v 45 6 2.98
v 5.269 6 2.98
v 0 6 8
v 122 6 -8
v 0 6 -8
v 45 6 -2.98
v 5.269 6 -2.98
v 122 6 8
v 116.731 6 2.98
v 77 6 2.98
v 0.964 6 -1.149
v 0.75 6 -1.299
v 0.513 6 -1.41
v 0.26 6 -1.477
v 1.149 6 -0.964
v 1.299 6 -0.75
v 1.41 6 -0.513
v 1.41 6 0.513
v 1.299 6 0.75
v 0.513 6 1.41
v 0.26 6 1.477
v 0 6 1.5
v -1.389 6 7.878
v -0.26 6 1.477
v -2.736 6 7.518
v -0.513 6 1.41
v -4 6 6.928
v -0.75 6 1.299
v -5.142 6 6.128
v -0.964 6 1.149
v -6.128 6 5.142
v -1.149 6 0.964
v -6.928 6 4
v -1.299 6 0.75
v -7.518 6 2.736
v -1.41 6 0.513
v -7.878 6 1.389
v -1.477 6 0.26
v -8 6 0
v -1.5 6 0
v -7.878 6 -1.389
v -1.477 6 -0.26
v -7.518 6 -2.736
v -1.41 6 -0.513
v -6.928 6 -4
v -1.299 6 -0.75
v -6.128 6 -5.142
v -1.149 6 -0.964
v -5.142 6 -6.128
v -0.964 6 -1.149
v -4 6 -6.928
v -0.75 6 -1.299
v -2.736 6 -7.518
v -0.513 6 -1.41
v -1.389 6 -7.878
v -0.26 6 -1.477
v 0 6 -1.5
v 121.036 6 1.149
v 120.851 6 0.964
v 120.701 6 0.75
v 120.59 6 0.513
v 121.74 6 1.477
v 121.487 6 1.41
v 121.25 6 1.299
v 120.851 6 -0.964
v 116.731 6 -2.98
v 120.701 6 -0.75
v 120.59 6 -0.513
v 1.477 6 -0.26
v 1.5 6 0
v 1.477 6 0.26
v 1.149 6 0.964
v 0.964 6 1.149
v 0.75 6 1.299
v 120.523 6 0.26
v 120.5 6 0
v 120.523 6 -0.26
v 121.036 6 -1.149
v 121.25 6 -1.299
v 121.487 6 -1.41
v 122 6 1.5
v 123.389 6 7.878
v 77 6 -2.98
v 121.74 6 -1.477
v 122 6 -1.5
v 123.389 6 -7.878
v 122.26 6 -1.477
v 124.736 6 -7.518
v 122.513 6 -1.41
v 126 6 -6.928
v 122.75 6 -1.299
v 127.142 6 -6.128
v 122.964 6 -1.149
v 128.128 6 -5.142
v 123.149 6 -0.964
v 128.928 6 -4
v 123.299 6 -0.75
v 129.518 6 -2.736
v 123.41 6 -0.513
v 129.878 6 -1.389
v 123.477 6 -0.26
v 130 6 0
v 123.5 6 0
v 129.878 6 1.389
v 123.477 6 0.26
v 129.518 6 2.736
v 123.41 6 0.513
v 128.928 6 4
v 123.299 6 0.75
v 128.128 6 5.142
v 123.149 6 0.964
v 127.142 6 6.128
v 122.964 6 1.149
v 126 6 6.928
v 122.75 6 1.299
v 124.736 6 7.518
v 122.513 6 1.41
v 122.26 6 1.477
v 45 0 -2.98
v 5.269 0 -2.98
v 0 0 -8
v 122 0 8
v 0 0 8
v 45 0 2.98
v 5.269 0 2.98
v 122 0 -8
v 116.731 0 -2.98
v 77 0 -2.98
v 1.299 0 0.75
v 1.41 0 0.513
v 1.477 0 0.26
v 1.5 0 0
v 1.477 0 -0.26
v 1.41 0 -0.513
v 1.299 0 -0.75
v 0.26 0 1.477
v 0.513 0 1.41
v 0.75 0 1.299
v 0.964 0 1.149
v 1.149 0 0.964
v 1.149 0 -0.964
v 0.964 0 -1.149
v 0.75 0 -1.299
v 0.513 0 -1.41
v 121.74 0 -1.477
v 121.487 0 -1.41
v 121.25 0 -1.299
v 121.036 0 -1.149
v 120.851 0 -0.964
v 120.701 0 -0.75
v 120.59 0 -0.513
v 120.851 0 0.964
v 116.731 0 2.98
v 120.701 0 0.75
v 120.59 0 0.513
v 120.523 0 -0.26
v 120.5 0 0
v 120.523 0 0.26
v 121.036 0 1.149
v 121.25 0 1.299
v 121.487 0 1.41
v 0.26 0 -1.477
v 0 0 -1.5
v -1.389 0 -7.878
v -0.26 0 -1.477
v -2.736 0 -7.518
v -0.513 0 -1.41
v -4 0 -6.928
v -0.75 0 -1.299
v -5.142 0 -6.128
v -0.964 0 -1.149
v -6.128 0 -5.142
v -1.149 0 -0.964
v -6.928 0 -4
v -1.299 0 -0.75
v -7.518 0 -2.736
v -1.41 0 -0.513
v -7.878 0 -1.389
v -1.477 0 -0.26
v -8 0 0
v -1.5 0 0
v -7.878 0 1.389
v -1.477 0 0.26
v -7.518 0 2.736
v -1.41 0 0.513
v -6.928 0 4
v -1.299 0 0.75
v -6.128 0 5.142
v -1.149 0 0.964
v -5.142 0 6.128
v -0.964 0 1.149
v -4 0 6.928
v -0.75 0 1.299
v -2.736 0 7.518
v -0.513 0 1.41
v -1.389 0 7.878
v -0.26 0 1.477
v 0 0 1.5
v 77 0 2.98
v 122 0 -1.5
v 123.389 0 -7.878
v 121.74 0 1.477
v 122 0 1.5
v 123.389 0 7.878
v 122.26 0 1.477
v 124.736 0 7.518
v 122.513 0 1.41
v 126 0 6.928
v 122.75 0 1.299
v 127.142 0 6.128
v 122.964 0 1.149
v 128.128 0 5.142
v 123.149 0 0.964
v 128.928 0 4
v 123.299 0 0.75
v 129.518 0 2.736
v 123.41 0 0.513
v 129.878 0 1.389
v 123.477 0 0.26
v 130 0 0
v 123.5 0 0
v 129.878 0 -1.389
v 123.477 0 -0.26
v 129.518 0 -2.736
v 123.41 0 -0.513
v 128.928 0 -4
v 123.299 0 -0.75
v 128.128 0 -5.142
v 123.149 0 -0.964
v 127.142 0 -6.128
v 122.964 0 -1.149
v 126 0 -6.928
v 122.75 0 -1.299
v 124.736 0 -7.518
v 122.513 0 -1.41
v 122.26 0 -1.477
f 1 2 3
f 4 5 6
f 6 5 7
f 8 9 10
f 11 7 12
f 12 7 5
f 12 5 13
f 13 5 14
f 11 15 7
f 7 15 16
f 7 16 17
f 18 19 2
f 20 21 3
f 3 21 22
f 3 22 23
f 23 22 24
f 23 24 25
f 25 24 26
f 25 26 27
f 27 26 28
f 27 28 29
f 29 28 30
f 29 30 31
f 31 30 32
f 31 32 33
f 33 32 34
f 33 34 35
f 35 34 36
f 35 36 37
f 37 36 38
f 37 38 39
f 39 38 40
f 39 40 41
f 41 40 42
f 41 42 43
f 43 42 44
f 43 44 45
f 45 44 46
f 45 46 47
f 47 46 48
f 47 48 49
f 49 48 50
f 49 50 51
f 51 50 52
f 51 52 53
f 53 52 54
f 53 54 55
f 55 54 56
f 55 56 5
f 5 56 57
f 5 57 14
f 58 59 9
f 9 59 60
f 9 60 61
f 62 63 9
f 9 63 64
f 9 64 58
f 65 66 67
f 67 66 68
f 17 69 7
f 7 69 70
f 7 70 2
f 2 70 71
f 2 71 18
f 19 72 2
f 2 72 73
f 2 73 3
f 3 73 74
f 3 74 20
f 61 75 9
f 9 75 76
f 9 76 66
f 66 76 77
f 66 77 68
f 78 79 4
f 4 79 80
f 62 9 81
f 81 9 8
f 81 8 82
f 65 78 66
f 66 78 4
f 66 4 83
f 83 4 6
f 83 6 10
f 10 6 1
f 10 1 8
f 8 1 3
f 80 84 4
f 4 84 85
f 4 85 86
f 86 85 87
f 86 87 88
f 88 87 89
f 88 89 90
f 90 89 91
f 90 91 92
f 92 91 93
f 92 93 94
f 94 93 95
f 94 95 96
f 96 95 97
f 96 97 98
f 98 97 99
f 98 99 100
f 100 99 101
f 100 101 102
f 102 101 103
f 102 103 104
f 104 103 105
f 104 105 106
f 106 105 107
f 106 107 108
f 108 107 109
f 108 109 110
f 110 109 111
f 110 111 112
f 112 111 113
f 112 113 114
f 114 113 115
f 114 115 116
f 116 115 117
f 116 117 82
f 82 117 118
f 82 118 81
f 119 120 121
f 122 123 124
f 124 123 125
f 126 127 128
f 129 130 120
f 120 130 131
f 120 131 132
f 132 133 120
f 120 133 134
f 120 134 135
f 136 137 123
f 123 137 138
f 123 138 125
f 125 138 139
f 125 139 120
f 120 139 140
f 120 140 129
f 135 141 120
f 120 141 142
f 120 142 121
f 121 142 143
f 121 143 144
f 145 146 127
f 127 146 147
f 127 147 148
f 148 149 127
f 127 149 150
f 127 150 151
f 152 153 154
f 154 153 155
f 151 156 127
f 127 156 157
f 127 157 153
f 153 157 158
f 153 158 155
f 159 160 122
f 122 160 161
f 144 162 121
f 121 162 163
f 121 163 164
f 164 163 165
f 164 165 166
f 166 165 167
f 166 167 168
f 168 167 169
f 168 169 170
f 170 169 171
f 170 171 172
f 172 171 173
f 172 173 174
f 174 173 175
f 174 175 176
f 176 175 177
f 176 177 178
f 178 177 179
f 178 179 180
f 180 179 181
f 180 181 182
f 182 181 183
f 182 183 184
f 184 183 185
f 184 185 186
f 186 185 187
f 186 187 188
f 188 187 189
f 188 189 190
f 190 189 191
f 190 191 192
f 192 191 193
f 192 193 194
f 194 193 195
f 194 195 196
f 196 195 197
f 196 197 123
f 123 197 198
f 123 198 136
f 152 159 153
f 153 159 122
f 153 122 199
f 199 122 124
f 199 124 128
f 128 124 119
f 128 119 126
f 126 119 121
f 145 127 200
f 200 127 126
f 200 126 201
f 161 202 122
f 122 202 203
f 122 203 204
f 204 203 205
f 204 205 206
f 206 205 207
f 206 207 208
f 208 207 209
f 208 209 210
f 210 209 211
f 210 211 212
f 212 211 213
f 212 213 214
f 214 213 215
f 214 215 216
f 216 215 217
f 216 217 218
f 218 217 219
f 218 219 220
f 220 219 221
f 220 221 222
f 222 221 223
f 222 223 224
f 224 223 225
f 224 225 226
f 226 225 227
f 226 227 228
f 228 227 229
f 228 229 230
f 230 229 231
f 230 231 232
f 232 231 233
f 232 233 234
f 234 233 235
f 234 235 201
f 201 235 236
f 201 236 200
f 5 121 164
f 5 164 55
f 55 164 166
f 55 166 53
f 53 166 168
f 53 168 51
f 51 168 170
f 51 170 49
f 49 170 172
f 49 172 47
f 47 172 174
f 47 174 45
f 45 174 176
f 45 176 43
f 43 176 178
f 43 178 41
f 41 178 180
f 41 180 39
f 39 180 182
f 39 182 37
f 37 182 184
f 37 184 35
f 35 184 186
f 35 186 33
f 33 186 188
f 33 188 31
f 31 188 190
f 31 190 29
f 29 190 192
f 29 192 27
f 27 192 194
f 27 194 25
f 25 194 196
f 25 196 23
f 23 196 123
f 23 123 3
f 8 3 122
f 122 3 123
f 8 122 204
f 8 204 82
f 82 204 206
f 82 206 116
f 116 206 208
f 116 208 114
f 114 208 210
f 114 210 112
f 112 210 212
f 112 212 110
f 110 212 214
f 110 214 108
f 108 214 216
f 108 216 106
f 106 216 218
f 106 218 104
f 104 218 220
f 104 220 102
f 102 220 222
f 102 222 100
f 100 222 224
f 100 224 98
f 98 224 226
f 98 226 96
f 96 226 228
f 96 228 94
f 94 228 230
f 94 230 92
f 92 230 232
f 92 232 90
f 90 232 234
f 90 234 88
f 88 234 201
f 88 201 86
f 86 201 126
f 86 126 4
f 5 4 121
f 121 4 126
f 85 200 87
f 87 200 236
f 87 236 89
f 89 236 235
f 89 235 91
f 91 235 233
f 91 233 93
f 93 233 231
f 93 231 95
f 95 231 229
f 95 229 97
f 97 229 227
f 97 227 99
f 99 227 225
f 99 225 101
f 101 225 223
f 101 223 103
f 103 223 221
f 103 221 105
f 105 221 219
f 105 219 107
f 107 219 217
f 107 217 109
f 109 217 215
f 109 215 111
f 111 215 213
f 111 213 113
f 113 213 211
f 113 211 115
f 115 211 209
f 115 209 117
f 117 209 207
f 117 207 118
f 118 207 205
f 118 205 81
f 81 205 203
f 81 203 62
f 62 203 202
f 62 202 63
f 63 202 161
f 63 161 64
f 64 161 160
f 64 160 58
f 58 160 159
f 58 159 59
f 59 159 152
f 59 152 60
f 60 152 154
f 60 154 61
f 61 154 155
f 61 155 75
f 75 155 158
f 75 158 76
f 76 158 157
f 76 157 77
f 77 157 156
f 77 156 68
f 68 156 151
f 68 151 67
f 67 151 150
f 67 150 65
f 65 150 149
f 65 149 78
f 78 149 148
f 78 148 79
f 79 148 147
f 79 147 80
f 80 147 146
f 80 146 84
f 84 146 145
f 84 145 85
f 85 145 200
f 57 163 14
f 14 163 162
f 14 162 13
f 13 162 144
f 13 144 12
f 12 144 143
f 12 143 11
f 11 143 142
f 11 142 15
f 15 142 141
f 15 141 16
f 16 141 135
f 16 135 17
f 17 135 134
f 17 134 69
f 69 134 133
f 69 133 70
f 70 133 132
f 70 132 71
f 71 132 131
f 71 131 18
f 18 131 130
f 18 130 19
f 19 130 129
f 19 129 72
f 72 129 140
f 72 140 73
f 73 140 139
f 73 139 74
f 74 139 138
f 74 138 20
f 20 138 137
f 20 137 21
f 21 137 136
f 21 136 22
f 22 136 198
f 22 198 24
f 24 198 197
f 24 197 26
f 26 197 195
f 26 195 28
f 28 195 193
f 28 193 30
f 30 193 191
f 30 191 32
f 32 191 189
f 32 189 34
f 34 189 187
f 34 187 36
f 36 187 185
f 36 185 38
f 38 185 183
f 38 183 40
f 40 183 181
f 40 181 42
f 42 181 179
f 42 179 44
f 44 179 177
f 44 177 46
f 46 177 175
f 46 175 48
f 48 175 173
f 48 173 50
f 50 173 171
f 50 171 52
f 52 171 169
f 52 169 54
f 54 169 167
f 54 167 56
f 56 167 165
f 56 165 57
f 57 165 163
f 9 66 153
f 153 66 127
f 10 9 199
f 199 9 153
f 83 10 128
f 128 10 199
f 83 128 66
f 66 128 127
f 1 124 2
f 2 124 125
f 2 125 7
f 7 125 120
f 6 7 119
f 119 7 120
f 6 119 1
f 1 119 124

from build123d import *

# Parameters (mm, degrees)
SKETCH1_R           = 1.5
BOSS_EXTRUDE1_DEPTH = 6
SKETCH2_W           = 28.99967905
SKETCH2_H           = 5.960844098
SKETCH2_W_2         = 10.731611964
CUT_EXTRUDE1_DEPTH  = 14


with BuildPart() as part:
    # Sketch1 → Boss-Extrude1 (new body)
    with BuildSketch(Plane(origin=(0, 0, 0), x_dir=(1, 0, 0), z_dir=(0, 1, 0))):
        with BuildLine():
            Line((0, 8), (122, 8))
            ThreePointArc((122, 8), (130, 0), (122, -8))
            Line((122, -8), (0, -8))
            ThreePointArc((0, -8), (-8, 0), (0, 8))
        make_face()
        Circle(SKETCH1_R, mode=Mode.SUBTRACT)
        with Locations((122, 0)):
            Circle(SKETCH1_R, mode=Mode.SUBTRACT)
    extrude(amount=BOSS_EXTRUDE1_DEPTH)

    # Sketch2 → Cut-Extrude1 (cut)
    with BuildSketch(Plane(origin=(0, 6, 0), x_dir=(1, 0, 0), z_dir=(0, 1, 0))):
        with Locations((30.5, 0)):
            Rectangle(SKETCH2_W, SKETCH2_H)
        with Locations((10.634354493, 0)):
            Rectangle(SKETCH2_W_2, SKETCH2_H)
        Polygon((105.999839525, 2.980422049), (77.000160475, 2.980422049), (77.000160475, -2.980422049), (105.999839525, -2.980422049), (116.731451489, -2.980422049), (116.731451489, 2.980422049), align=None)
    extrude(amount=-CUT_EXTRUDE1_DEPTH, mode=Mode.SUBTRACT)


solid = part.part
